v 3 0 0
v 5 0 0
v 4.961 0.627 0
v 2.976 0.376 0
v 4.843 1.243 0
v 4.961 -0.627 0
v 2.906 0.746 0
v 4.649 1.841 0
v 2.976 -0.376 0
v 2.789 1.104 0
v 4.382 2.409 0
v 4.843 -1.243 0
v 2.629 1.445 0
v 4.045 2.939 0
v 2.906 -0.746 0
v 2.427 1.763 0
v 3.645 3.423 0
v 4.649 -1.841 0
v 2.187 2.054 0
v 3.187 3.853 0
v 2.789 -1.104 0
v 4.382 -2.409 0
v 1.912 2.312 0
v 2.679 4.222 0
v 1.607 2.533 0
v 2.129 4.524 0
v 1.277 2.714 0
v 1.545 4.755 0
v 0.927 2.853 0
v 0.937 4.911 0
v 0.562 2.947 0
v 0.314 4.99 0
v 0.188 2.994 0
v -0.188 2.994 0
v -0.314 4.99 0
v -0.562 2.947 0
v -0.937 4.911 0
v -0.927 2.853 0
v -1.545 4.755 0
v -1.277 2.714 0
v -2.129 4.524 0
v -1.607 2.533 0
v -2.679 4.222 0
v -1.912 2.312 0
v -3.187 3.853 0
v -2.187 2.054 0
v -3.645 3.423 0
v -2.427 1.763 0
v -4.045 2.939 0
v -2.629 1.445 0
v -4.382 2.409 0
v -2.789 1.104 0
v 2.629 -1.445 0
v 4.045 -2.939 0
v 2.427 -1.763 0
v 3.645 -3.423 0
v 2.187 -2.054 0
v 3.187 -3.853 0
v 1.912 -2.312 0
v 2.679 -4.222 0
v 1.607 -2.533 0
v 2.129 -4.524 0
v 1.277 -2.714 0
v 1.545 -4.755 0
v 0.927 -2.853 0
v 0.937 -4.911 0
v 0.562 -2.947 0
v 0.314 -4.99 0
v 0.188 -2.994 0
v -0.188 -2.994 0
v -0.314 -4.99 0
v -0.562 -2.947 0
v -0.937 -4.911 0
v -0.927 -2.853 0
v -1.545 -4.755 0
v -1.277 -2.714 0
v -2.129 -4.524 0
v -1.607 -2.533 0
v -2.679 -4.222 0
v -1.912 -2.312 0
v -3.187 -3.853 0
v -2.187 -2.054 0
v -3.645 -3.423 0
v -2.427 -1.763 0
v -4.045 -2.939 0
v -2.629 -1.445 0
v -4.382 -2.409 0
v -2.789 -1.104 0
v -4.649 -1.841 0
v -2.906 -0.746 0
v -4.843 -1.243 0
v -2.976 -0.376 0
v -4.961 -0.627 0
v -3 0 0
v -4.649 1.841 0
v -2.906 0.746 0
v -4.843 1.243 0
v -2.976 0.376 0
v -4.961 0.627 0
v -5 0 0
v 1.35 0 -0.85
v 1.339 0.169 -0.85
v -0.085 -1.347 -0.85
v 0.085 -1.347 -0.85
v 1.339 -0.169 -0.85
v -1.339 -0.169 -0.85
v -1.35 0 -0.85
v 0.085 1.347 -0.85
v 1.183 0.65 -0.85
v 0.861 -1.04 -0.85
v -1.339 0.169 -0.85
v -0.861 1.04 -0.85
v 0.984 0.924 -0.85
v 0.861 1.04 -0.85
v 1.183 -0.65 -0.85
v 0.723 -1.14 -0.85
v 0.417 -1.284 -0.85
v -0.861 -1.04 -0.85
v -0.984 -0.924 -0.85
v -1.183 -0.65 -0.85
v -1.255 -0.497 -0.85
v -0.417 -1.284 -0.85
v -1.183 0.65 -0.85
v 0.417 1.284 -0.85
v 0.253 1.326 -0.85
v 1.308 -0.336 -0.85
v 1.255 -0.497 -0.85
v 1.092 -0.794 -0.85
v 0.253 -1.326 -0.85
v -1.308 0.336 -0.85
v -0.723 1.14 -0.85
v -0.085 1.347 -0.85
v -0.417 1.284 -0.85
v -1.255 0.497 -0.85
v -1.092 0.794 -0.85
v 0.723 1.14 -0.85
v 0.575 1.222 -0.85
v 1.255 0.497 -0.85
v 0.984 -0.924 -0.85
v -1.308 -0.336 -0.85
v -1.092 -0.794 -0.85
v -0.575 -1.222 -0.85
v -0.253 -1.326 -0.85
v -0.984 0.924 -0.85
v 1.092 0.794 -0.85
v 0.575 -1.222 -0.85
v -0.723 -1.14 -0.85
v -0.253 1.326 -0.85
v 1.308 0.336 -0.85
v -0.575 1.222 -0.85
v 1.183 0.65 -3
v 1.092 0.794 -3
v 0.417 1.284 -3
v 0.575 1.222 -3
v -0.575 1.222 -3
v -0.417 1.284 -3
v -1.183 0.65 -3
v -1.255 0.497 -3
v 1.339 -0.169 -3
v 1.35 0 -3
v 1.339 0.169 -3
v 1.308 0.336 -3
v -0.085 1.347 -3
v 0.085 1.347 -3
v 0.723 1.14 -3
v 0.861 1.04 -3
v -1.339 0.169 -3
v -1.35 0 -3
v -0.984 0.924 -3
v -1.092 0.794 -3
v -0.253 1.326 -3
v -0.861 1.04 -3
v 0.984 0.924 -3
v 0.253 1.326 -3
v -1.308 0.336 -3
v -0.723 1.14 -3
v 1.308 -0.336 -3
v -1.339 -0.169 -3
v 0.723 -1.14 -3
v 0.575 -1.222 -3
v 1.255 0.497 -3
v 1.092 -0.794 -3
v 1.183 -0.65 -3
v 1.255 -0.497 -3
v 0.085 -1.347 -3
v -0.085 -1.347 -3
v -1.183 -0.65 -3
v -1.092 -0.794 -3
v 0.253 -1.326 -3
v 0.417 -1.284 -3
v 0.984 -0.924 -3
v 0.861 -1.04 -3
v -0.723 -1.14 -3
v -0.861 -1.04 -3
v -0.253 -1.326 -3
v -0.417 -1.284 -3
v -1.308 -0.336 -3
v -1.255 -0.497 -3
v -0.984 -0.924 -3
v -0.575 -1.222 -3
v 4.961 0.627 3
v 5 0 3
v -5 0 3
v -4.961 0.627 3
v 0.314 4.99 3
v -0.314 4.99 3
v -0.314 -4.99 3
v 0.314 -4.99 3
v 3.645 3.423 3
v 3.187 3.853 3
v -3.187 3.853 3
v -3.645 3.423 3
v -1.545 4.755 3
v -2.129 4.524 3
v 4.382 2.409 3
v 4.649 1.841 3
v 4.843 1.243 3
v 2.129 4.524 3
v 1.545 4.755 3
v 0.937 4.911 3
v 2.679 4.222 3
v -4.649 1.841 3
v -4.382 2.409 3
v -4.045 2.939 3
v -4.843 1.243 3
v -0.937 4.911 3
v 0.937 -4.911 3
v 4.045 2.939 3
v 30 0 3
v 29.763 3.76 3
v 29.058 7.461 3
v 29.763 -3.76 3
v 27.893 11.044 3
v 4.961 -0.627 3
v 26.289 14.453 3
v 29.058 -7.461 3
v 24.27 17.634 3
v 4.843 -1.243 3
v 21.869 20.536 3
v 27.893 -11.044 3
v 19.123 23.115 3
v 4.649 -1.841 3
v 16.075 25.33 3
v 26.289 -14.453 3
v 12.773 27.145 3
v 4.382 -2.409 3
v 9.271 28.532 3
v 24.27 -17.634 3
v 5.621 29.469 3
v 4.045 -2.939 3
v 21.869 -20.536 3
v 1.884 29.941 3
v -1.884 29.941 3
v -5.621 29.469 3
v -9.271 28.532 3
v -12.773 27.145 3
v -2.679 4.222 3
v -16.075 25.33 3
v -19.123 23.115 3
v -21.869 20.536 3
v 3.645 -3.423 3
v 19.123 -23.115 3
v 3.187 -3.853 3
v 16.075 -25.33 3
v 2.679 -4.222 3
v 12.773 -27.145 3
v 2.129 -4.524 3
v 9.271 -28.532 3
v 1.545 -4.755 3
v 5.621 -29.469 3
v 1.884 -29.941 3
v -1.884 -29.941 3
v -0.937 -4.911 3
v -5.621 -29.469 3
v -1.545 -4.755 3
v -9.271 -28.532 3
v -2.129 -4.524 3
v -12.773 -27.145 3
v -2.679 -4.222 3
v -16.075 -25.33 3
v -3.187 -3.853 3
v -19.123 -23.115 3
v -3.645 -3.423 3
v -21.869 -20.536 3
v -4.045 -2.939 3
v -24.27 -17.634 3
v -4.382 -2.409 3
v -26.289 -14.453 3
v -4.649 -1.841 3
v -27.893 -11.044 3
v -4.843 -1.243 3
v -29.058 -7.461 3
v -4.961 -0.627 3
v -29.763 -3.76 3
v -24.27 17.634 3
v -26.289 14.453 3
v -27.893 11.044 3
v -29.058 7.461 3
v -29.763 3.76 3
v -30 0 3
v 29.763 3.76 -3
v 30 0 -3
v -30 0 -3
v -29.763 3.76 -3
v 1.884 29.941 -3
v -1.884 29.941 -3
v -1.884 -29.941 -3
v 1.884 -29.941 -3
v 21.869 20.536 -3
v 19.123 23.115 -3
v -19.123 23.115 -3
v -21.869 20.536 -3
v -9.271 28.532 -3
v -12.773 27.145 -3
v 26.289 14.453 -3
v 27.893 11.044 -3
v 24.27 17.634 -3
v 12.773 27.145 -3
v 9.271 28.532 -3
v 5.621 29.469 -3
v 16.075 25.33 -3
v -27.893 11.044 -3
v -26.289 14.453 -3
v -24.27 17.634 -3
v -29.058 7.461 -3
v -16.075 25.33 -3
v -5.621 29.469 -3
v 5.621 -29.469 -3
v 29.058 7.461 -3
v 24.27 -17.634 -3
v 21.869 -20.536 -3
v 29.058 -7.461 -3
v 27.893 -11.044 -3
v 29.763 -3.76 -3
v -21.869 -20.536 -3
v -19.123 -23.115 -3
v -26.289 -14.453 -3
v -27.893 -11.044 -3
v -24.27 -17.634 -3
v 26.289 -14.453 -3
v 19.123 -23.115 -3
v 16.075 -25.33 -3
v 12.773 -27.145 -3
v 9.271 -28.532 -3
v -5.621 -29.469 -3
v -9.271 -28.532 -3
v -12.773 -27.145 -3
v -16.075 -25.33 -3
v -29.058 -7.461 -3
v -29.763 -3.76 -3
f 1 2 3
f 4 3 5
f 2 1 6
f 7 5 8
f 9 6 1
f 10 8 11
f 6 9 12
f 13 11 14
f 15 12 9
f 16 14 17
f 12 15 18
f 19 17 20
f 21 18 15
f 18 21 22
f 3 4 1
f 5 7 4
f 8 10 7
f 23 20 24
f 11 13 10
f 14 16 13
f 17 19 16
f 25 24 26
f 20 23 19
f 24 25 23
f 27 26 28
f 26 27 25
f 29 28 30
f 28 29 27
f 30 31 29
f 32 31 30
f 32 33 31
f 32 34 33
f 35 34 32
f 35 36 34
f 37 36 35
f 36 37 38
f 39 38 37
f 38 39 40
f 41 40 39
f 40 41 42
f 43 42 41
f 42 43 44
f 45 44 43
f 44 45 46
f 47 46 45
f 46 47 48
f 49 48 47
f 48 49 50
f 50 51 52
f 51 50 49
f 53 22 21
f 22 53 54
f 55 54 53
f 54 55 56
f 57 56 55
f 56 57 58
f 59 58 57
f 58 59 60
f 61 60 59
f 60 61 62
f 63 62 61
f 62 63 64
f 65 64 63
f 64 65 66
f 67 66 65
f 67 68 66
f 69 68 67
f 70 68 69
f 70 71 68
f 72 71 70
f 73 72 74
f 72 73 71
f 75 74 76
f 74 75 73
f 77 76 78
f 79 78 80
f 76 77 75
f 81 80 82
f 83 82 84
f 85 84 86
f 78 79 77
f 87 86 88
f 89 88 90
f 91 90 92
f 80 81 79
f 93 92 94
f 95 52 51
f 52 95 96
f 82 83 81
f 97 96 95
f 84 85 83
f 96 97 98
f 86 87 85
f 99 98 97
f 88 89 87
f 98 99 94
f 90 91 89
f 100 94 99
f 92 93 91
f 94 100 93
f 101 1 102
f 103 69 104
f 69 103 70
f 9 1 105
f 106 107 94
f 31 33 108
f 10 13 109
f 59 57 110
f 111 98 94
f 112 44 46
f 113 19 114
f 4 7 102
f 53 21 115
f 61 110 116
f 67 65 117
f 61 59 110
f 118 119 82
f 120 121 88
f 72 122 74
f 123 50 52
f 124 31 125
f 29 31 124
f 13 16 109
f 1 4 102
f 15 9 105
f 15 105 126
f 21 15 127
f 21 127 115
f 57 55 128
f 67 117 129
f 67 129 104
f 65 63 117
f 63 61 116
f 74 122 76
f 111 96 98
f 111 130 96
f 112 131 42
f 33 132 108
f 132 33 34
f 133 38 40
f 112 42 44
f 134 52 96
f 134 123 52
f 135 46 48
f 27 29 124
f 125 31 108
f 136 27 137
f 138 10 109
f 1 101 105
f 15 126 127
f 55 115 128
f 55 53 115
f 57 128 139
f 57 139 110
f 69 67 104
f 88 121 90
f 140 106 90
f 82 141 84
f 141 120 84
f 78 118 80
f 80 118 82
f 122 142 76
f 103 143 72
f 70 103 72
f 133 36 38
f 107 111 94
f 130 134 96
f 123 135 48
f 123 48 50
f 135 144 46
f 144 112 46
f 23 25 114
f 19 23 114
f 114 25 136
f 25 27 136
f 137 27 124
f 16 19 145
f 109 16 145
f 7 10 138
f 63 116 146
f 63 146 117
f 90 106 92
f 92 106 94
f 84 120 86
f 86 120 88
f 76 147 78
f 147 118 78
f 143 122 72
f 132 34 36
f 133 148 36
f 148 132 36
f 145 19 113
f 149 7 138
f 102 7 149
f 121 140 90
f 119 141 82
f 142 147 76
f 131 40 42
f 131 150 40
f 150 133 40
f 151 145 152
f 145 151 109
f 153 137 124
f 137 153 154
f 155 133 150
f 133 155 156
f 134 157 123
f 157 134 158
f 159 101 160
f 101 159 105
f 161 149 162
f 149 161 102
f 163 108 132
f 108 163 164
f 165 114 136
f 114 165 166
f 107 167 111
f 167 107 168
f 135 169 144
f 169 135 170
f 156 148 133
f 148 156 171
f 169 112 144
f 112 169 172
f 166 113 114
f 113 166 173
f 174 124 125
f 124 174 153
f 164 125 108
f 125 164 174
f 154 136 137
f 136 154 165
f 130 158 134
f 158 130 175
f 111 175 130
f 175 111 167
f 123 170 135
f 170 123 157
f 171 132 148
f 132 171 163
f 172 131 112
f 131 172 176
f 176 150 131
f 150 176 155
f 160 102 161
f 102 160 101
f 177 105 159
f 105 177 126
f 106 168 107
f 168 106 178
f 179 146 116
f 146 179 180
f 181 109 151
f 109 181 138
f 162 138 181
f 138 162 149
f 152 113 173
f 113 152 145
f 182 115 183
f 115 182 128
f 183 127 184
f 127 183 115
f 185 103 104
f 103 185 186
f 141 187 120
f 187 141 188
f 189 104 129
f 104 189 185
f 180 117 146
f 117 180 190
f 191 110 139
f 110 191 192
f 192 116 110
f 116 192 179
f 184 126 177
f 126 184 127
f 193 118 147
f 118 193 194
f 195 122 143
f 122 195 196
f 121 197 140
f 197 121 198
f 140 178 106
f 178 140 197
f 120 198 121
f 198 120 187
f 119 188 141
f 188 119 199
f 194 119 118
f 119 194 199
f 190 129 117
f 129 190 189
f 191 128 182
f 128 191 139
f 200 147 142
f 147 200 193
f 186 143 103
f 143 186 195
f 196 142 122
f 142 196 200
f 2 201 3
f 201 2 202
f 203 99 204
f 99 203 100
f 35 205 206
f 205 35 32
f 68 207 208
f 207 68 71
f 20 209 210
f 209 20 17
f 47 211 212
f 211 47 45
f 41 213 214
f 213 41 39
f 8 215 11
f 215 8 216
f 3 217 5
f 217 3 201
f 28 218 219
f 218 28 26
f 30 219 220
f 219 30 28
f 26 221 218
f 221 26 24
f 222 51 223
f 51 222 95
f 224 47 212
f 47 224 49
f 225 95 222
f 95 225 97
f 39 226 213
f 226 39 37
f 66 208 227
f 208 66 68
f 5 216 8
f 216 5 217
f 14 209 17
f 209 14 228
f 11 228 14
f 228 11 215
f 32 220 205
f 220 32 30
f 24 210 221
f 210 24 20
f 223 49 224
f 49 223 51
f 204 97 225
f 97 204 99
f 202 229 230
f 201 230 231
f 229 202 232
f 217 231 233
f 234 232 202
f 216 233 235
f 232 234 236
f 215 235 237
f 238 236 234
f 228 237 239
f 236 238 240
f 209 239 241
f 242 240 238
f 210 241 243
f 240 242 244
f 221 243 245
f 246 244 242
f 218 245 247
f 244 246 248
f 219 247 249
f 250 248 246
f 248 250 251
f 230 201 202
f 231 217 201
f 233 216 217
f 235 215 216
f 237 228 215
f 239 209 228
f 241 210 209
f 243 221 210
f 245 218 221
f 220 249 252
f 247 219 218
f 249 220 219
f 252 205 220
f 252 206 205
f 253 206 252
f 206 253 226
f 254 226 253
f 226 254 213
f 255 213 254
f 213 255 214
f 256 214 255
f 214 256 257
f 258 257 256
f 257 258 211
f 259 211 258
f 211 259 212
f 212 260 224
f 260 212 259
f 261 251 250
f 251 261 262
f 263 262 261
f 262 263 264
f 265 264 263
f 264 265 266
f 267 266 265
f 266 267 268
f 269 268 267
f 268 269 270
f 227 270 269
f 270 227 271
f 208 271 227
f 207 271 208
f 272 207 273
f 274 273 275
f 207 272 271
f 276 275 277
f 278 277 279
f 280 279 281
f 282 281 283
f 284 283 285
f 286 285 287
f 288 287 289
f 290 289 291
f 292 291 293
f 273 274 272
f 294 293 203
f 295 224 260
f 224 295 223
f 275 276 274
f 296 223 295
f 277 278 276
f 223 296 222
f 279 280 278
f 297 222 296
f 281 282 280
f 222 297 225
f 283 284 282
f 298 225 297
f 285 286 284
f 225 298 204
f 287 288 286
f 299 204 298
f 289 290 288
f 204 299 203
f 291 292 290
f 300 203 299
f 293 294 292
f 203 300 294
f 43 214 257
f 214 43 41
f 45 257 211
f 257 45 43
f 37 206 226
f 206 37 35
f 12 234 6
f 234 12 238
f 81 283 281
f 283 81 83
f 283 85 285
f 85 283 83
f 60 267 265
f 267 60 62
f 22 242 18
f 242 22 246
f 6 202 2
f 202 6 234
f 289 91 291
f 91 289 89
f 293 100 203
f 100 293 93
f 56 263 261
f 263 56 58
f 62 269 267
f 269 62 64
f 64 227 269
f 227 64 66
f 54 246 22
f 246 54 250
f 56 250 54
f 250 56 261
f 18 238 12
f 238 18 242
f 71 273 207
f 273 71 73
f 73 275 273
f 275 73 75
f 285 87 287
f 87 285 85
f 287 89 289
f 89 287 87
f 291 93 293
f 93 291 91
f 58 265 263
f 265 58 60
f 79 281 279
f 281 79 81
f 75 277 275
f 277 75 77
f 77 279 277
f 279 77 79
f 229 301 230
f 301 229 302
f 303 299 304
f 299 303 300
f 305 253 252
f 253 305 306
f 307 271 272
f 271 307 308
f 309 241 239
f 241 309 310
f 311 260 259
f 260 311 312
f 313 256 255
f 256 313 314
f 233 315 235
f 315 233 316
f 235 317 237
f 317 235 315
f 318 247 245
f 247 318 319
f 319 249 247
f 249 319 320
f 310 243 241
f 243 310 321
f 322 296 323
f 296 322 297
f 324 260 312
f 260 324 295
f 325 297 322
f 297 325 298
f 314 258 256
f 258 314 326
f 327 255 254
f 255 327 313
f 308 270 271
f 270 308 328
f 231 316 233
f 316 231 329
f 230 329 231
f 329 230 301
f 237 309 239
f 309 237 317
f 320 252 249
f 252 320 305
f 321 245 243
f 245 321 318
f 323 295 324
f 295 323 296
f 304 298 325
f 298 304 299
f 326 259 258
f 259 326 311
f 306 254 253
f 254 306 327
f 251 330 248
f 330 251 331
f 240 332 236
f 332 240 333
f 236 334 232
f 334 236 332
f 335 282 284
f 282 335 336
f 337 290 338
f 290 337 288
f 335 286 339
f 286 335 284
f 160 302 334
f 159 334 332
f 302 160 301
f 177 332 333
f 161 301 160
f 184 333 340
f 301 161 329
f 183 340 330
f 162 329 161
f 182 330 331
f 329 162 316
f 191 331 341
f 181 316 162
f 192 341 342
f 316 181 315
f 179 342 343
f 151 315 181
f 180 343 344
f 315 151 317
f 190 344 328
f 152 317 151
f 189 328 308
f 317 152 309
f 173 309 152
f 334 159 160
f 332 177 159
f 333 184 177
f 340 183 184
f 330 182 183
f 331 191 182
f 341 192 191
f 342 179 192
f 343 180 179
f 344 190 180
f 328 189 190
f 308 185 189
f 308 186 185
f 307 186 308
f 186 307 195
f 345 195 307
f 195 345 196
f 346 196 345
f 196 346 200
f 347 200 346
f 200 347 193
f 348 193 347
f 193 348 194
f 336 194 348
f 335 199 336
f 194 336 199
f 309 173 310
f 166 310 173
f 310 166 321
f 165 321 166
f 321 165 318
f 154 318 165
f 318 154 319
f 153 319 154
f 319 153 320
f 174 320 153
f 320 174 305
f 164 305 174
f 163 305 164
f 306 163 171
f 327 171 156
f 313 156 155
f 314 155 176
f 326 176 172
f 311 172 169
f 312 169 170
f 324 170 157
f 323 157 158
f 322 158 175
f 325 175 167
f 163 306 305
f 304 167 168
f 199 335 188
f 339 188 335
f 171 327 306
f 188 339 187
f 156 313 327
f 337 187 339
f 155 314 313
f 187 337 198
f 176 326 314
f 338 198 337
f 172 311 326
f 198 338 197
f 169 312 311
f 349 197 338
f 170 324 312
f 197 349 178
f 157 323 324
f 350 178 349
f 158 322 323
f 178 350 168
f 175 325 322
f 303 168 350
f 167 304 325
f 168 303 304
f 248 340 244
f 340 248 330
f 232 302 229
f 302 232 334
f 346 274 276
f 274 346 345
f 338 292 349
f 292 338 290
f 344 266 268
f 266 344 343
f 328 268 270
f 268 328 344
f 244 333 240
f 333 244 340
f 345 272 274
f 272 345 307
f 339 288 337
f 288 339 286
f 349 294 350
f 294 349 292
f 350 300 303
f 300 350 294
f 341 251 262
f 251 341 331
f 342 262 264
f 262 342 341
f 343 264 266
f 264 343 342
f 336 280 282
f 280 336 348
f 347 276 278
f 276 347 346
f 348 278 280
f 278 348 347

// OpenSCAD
$fn = 50;


difference() {
	union() {
		translate(v = [0, 0, -3.0000000000]) {
			cylinder(h = 6, r = 30.0000000000);
		}
	}
	union() {
		translate(v = [0, 0, 0]) {
			rotate(a = [0, 0, 0]) {
				difference() {
					union() {
						translate(v = [0, 0, -6.0000000000]) {
							cylinder(h = 6, r = 1.0000000000);
						}
						translate(v = [0, 0, -0.8500000000]) {
							cylinder(h = 0.8500000000, r1 = 1.3500000000, r2 = 3.0000000000);
						}
						translate(v = [0, 0, -6.0000000000]) {
							cylinder(h = 6, r = 1.3500000000);
						}
						translate(v = [0, 0, -6.0000000000]) {
							cylinder(h = 6, r = 1.0000000000);
						}
					}
					union();
				}
			}
		}
		#cylinder(h = 3, r = 5.0000000000);
	}
}
